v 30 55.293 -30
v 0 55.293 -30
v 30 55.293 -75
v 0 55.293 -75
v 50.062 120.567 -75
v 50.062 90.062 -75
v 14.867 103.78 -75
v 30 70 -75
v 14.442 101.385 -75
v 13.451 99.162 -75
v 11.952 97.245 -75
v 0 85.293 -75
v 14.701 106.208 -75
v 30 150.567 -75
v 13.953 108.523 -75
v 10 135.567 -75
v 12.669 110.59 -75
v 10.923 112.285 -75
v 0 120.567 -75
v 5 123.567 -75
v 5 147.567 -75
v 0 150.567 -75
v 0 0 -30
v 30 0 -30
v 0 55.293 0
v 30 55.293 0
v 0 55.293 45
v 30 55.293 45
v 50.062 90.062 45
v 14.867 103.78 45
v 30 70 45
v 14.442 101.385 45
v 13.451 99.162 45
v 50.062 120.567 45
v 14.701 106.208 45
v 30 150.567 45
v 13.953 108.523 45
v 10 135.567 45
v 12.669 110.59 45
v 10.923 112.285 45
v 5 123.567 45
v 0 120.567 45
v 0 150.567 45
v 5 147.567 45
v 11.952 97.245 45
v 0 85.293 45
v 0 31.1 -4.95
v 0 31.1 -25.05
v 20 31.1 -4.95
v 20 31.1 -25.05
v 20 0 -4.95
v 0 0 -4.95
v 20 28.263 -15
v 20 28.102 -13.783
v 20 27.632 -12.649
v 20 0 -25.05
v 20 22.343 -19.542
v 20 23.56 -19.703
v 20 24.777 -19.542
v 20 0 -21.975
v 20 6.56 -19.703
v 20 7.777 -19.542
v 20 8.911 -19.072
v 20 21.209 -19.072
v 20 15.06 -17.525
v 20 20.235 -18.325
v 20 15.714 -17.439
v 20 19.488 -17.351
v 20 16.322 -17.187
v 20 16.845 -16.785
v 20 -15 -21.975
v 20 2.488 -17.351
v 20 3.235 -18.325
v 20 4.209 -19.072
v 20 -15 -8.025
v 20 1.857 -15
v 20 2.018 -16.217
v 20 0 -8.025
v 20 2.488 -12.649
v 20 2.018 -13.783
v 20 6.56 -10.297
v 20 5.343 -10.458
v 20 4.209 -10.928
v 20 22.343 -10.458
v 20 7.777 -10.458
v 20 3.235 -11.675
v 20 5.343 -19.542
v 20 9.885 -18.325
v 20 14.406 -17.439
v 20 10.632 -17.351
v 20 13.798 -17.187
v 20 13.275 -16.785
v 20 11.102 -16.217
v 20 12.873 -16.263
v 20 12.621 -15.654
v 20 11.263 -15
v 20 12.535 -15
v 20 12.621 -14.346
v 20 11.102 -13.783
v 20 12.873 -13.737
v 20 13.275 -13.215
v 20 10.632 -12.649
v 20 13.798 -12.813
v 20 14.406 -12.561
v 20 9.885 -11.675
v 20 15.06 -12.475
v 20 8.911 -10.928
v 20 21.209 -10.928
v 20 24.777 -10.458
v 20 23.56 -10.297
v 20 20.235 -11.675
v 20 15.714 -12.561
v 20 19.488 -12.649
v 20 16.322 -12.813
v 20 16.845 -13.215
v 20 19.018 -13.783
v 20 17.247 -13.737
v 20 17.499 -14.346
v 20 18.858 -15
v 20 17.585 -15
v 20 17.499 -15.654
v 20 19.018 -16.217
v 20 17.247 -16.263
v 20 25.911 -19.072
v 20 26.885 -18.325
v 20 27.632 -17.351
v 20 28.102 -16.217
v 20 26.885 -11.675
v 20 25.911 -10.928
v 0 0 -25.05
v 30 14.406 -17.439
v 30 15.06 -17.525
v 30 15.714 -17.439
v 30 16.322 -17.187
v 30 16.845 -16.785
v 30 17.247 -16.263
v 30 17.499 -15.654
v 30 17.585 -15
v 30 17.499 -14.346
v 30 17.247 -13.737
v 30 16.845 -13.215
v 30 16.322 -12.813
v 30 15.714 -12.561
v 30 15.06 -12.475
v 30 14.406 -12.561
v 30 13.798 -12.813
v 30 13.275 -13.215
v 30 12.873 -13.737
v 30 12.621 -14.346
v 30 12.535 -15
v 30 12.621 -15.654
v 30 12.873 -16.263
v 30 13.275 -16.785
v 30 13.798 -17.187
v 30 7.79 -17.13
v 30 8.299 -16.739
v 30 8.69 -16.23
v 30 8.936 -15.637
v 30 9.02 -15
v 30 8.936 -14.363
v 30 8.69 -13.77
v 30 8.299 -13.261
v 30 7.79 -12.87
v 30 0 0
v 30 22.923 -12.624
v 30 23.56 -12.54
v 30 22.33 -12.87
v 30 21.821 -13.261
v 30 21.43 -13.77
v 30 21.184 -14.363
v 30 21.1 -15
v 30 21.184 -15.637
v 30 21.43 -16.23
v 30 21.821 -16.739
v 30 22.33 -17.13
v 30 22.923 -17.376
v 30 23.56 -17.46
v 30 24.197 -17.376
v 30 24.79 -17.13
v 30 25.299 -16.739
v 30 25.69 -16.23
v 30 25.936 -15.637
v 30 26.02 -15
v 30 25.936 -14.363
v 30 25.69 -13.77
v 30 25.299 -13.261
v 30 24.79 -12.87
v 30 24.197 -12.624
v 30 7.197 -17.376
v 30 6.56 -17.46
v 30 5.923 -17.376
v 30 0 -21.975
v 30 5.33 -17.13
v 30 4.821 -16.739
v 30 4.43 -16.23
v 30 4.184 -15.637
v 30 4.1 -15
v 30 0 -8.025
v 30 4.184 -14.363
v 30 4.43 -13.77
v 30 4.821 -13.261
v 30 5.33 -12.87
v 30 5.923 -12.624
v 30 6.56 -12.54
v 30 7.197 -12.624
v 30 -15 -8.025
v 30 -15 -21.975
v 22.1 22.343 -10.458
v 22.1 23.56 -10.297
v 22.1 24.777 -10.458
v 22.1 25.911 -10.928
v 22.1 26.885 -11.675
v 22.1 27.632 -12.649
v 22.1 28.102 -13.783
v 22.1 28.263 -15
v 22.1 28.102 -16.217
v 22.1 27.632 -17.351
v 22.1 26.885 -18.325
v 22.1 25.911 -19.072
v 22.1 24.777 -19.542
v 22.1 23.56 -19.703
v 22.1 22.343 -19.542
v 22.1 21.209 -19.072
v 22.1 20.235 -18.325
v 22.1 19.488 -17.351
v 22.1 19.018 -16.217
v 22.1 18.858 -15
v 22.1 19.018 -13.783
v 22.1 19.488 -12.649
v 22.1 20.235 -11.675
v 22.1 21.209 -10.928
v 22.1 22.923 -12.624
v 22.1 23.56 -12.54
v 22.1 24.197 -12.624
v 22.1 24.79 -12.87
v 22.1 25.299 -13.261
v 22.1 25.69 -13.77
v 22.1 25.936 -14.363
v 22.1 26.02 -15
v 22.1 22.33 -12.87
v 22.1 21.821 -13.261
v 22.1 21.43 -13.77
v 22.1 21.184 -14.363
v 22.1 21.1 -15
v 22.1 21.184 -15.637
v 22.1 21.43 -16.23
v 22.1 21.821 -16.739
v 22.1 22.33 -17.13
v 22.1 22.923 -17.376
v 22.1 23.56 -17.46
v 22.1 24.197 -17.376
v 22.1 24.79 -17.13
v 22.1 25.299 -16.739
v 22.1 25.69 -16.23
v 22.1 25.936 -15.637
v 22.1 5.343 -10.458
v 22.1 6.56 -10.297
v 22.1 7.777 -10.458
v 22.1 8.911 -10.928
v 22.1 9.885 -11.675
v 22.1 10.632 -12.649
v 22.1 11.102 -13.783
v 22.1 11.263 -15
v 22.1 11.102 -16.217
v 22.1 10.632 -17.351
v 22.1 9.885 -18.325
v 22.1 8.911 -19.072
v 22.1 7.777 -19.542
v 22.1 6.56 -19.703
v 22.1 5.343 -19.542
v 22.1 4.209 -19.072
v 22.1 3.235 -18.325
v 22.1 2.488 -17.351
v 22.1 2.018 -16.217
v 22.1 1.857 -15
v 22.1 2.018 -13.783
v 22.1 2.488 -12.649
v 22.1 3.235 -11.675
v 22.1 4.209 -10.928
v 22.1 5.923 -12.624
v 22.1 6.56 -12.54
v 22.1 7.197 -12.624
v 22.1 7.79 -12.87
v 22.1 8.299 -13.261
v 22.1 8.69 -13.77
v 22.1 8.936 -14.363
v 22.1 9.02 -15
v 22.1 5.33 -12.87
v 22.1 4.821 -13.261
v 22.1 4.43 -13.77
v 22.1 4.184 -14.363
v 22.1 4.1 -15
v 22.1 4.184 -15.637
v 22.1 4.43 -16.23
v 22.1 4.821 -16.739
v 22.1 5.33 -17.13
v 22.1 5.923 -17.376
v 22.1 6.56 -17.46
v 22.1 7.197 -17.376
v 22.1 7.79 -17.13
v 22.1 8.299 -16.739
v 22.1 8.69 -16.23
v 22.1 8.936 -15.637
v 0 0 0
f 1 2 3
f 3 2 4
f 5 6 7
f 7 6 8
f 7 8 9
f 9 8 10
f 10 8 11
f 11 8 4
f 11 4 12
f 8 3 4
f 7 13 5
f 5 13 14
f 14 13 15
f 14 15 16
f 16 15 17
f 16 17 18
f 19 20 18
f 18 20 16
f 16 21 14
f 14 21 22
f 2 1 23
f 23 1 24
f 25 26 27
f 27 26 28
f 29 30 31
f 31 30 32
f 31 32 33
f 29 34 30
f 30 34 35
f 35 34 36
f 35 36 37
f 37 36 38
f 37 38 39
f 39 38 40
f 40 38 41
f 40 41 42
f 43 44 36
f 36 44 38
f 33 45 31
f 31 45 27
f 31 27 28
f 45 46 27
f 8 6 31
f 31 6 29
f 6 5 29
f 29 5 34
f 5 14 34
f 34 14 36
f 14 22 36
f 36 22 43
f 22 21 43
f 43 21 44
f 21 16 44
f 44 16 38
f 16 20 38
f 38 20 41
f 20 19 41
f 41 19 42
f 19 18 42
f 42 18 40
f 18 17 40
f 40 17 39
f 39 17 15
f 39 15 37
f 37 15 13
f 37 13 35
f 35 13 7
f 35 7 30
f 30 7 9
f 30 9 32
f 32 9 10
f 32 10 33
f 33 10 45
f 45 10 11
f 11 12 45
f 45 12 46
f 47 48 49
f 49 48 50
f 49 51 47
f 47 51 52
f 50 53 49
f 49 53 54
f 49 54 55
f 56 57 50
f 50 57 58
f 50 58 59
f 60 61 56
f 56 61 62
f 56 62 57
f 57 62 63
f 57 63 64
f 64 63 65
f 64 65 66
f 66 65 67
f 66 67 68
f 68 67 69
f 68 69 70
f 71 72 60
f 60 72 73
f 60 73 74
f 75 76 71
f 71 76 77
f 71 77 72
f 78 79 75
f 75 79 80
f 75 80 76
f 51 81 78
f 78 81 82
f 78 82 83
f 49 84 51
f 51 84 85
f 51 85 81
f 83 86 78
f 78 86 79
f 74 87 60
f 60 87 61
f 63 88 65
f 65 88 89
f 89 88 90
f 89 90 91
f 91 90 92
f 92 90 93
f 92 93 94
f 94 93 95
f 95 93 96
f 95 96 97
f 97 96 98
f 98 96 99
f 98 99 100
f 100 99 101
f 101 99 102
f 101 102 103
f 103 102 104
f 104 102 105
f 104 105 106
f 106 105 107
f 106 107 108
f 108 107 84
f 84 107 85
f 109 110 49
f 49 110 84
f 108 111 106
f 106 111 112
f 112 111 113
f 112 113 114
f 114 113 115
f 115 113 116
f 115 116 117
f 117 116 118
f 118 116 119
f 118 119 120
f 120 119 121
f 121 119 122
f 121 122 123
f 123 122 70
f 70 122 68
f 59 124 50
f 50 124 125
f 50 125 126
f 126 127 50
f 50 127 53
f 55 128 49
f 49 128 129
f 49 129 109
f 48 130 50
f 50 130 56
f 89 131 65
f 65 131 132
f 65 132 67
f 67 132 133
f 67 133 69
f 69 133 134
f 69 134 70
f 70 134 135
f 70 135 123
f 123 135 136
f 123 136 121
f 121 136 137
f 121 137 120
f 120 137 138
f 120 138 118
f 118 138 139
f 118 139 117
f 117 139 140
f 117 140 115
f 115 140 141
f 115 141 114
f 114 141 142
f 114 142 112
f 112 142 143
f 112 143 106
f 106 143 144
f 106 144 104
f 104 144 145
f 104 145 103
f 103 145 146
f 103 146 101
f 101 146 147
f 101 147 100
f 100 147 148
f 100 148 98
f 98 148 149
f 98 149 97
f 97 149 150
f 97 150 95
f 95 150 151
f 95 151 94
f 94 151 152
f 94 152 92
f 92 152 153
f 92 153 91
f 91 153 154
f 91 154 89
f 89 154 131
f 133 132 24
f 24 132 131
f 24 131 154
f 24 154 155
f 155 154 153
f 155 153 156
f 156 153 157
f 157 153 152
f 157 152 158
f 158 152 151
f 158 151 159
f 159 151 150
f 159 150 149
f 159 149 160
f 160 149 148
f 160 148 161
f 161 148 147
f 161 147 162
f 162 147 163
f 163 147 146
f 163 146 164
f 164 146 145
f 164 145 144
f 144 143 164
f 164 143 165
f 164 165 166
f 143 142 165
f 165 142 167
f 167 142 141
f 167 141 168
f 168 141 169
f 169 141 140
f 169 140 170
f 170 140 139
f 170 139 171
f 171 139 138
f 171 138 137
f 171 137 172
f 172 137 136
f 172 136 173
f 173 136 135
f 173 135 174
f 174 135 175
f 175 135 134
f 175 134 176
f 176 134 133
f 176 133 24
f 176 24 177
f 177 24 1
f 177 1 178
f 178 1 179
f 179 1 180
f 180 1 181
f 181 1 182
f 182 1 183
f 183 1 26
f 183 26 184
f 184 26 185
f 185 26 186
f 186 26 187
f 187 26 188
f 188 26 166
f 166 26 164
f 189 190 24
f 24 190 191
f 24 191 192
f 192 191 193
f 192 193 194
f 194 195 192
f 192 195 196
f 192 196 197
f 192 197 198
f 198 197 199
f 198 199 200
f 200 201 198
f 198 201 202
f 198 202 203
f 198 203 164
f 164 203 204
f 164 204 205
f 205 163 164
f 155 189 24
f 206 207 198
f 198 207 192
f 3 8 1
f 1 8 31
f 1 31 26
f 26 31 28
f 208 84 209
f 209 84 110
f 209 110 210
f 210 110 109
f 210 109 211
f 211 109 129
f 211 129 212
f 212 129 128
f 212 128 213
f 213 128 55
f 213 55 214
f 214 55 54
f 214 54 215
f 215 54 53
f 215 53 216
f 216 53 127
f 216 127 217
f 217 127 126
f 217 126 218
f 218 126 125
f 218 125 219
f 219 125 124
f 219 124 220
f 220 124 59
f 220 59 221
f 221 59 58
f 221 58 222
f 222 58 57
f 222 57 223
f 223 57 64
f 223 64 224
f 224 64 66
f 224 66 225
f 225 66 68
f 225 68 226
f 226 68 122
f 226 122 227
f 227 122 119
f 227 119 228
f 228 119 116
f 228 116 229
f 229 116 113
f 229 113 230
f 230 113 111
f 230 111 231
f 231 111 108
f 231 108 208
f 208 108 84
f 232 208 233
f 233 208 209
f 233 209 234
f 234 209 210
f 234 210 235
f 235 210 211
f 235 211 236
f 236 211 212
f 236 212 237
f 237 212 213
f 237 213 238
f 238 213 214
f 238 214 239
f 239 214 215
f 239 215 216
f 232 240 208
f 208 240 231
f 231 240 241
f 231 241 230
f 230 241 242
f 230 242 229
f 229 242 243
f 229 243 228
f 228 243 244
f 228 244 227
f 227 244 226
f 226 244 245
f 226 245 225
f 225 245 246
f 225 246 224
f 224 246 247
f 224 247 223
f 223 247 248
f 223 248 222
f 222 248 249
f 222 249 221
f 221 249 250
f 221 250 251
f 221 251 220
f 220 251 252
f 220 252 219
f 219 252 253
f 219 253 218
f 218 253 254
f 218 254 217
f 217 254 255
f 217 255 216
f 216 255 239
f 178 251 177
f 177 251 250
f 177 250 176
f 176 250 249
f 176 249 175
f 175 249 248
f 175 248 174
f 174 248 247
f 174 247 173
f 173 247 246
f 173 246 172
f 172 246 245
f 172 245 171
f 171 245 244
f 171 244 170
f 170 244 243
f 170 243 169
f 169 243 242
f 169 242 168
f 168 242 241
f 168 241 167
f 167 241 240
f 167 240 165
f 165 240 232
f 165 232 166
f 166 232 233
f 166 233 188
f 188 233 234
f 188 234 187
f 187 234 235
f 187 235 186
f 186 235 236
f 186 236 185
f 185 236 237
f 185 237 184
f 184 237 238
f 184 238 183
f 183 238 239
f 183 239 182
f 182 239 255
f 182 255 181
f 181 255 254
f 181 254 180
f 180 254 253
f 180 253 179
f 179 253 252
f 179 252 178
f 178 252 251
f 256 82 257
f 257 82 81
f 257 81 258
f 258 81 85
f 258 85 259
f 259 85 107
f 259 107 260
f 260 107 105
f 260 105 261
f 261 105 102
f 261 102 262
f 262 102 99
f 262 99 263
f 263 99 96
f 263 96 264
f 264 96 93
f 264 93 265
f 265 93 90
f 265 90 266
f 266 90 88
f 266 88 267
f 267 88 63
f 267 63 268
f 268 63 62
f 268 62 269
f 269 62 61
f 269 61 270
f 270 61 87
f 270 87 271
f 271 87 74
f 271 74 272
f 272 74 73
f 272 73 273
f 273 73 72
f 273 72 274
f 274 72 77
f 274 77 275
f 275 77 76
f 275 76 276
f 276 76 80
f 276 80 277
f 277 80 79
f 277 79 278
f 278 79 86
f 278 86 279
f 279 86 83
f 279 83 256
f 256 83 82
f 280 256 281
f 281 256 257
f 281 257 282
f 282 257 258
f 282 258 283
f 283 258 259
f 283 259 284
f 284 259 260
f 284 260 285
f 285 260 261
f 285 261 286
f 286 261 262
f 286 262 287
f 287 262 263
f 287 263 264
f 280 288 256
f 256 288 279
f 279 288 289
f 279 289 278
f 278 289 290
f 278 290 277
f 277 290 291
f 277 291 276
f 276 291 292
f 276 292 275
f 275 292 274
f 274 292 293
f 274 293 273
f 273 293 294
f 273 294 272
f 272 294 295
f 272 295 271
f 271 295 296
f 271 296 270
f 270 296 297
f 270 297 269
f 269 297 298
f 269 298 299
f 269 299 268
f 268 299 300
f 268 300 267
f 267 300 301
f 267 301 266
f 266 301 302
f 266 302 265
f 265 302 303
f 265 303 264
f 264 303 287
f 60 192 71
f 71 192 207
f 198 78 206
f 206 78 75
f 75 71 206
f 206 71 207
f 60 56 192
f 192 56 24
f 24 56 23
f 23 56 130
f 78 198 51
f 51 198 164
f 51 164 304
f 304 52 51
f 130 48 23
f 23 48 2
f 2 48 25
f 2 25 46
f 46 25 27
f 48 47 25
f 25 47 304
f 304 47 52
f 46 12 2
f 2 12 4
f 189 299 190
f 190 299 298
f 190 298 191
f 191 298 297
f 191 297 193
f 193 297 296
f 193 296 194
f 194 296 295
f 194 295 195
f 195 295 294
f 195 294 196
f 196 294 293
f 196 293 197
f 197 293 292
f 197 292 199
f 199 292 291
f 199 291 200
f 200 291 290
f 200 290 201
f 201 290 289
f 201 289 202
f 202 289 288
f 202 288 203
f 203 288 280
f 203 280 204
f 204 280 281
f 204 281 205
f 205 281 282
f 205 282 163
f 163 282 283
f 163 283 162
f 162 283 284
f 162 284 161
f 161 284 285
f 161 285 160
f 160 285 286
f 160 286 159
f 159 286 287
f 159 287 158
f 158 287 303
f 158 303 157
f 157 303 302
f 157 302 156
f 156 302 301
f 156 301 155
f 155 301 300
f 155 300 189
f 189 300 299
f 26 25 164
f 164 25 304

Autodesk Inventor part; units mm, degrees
ref_plane "YZ Plane" through (0, 0, 0) normal (1, 0, 0) x (0, 1, 0)
ref_plane "XZ Plane" through (0, 0, 0) normal (0, 1, 0) x (-1, 0, 0)
sketch "Sketch1" plane through (0, 0, 0) normal (0, 0, 1) x (1, 0, 0)
  line L0 (0, 0) -> (25, 0)
  line L1 (25, 0) -> (25, 40)
  line L2 (25, 40) -> (0, 40)
  line L3 (0, 40) -> (0, 0)
  dimension "d1" = 25
  dimension "d2" = 40
  dimension "d3" = 25
extrude "Extrusion1" add sketch "Sketch1" against normal blind 30
sketch "Sketch2" plane through (25, 0, 0) normal (1, 0, 0) x (0, 0, -1)
  line L0 (0, 0) -> (30, 0) projected
  circle A0 centre (15, 6.56) radius 2.46
extrude "Extrusion2" cut sketch "Sketch2" against normal blind 30
sketch "Sketch3" plane through (0, 0, 0) normal (-1, 0, 0) x (0, 0, 1)
  line L0 (0, 0) -> (-30, 0) projected
  line L1 (-25.05, 0) -> (-4.95, 0)
  line L2 (-4.95, 0) -> (-4.95, 33.12)
  line L3 (-4.95, 33.12) -> (-25.05, 33.12)
  line L4 (-25.05, 33.12) -> (-25.05, 0)
  dimension "d11" = 20.1
extrude "Extrusion3" cut sketch "Sketch3" against normal blind 20
sketch "Sketch4" plane through (0, 0, 0) normal (0, -1, 0) x (1, 0, 0)
  line L0 (20, -4.95) -> (20, -25.05) projected
  line L1 (20, -15) -> (25, -15)
  line L2 (25, 0) -> (25, -30) projected
  line L3 (20, -8.025) -> (25, -8.025)
  line L4 (25, -8.025) -> (25, -21.975)
  line L5 (25, -21.975) -> (20, -21.975)
  line L6 (20, -21.975) -> (20, -8.025)
  line L7 (20, -8.025) -> (25, -21.975) construction
  line L8 (25, -8.025) -> (20, -21.975) construction
  line L9 (25, -12.54) -> (25, -17.46) projected
  point P0 (0, 0)
  point P1 (22.5, -15)
  dimension "d14" = 13.95
extrude "Extrusion4" add sketch "Sketch4" along normal blind 15
sketch "Sketch5" plane through (20, 0, 0) normal (-1, 0, 0) x (0, 0, 1)
  circle A0 centre (-15, 6.56) radius 2.46 projected
  circle A1 centre (-15, 6.56) radius 4.7025
  circle A2 centre (-15, 6.56) radius 2.46 projected
  circle A3 centre (-15, 6.56) radius 2.46
  point P0 (0, 0)
  dimension "d17" = 9.405
extrude "Extrusion5" cut sketch "Sketch5" against normal blind 2.1
sketch "Sketch6" plane through (25, 0, 0) normal (1, 0, 0) x (0, 0, -1)
  circle A0 centre (15, 6.56) radius 4.7025 projected
  line L0 (15, 6.56) -> (15, 23.56)
  circle A1 centre (15, 23.56) radius 2.46
  point P0 (0, 0)
  dimension "d20" = 17
  dimension "d21" = 4.92
extrude "Extrusion6" cut sketch "Sketch6" against normal blind 10 contours A1
sketch "Sketch7" plane through (20, 0, 0) normal (-1, 0, 0) x (0, 0, 1)
  circle A0 centre (-15, 23.56) radius 2.46 projected
  circle A1 centre (-15, 23.56) radius 4.7025
  point P0 (0, 0)
  dimension "d24" = 9.405
extrude "Extrusion7" cut sketch "Sketch7" against normal blind 2.1
sketch "Sketch9" plane through (25, 0, 0) normal (1, 0, 0) x (0, 0, -1)
  circle A0 centre (15, 6.56) radius 2.46 projected
  circle A1 centre (15, 6.56) radius 2.46
  circle A2 centre (15, 23.56) radius 2.46 projected
  circle A3 centre (15, 23.56) radius 2.46
  line L0 (30, 40) -> (30, 0) projected
  line L1 (30, 0) -> (30, 40)
  line L2 (30, 40) -> (0, 40)
  line L3 (0, 40) -> (0, 0)
  line L4 (0, 0) -> (8.025, 0) projected
  line L5 (21.975, 0) -> (21.975, -15)
  line L6 (21.975, -15) -> (8.025, -15)
  line L7 (8.025, -15) -> (8.025, 0)
  line L8 (0, 0) -> (8.025, 0)
  line L9 (21.975, 0) -> (30, 0)
extrude "Extrusion8" add sketch "Sketch9" along normal blind 5
sketch "Sketch10" plane through (0, 40, 0) normal (0, 1, 0) x (1, 0, 0)
  line L0 (0, 30) -> (30, 30) projected
  line L1 (30, 0) -> (0, 0) projected
  line L2 (0, 30) -> (30, 30)
  line L3 (30, 30) -> (30, 0)
  line L4 (30, 0) -> (0, 0)
  line L5 (0, 0) -> (0, 30)
extrude "Extrusion9" add sketch "Sketch10" along normal blind 30
sketch "Sketch12" plane through (30, 0, 0) normal (1, 0, 0) x (0, 0, -1)
  circle A0 centre (15, 6.56) radius 2.46 projected
  line L0 (15, 6.56) -> (15, 15.06)
  circle A1 centre (15, 15.06) radius 2.525
  point P0 (0, 0)
  dimension "d31" = 8.5
  dimension "d33" = 5.05
extrude "Extrusion10" cut sketch "Sketch12" against normal blind 30 contours A1
sketch "Sketch15" plane through (0, 0, -25.05) normal (-1, 0, 0) x (0, 0, 1)
  line L0 (0, 33.12) -> (20.1, 33.12) projected
  line L1 (20.1, 33.12) -> (20.1, 0) projected
  line L2 (0, 33.12) -> (20.1, 33.12)
  line L3 (20.1, 33.12) -> (20.1, 31.1)
  line L4 (20.1, 31.1) -> (0, 31.1)
  line L5 (0, 31.1) -> (0, 33.12)
  point P0 (25.05, 0)
  dimension "d57" = 2.02
extrude "Extrusion13" add sketch "Sketch15" against normal blind 20
sketch "Sketch17" plane through (0, 0, 0) normal (0, 0, 1) x (1, 0, 0)
  line L0 (0, 70) -> (30, 70) projected
  line L1 (30, 70) -> (50.0622, 90.0622)
  line L2 (30, 70) -> (80, 70) construction
  line L3 (11.9522, 97.2454) -> (0, 85.2932)
  line L4 (0, 70) -> (0, 85.2932)
  line L5 (0, 70) -> (0, 0) projected
  line L6 (0, 70) -> (30, 70)
  line L7 (10.923, 112.2849) -> (0, 120.567)
  line L8 (50.0622, 105.3553) -> (50.0622, 120.567)
  line L9 (50.0622, 105.3553) -> (50.0622, 90.0622)
  arc A0 (11.9522, 97.2454) -> (10.923, 112.2849) centre (4.8811, 104.3165) ccw
  line L10 (0, 150.567) -> (30, 150.567)
  line L11 (30, 150.567) -> (50.0622, 120.567)
  line L12 (5, 147.567) -> (0, 150.567)
  line L13 (5, 123.567) -> (0, 120.567)
  line L14 (5, 123.567) -> (10, 135.567)
  line L15 (10, 135.567) -> (5, 147.567)
  dimension "d61" = 45
  dimension "d62" = 32.0271
  dimension "d72" = 10
extrude "Extrusion14" add sketch "Sketch17" against normal blind 30
sketch "Sketch22" plane through (0, 0, 0) normal (0, 0, 1) x (1, 0, 0)
  line L0 (30, 0) -> (30, 70) projected
  line L1 (50.0622, 120.567) -> (50.0622, 90.0622) projected
  line L2 (30, 70) -> (50.0622, 90.0622)
  line L3 (50.0622, 90.0622) -> (50.0622, 120.567)
  line L4 (50.0622, 120.567) -> (30, 150.567) projected
  line L5 (50.0622, 120.567) -> (30, 150.567)
  line L6 (30, 150.567) -> (0, 150.567) projected
  line L7 (30, 150.567) -> (0, 150.567)
  line L8 (0, 150.567) -> (5, 147.567) projected
  line L9 (0, 150.567) -> (5, 147.567)
  line L10 (5, 147.567) -> (10, 135.567) projected
  line L11 (5, 147.567) -> (10, 135.567)
  line L12 (5, 123.567) -> (10, 135.567) projected
  line L13 (10, 135.567) -> (5, 123.567)
  line L14 (5, 123.567) -> (0, 120.567) projected
  line L15 (5, 123.567) -> (0, 120.567)
  line L16 (10.923, 112.2849) -> (0, 120.567) projected
  line L17 (0, 120.567) -> (10.923, 112.2849)
  line L18 (0, 85.2932) -> (11.9522, 97.2454) projected
  line L19 (11.9522, 97.2454) -> (0, 85.2932)
  line L20 (0, 85.2932) -> (0, 55.2932)
  line L21 (0, 0) -> (0, 85.2932) projected
  line L22 (0, 55.2932) -> (30, 55.2932)
  line L23 (30, 55.2932) -> (30, 70)
  arc A0 (11.9522, 97.2454) -> (10.923, 112.2849) centre (4.8811, 104.3165) ccw projected
  arc A1 (11.9522, 97.2454) -> (10.923, 112.2849) centre (4.8811, 104.3165) ccw
  dimension "d87" = 30
extrude "Extrusion15" add sketch "Sketch22" along normal blind 45
ref_plane "Work Plane1" through (0, 0, -15) normal (0, 0, 1) x (1, 0, 0)
mirror "Mirror1" about plane through (0, 0, -15) normal (0, 0, 1) of "Extrusion15"
properties part number "rec_c_24mm_x_120mm"
